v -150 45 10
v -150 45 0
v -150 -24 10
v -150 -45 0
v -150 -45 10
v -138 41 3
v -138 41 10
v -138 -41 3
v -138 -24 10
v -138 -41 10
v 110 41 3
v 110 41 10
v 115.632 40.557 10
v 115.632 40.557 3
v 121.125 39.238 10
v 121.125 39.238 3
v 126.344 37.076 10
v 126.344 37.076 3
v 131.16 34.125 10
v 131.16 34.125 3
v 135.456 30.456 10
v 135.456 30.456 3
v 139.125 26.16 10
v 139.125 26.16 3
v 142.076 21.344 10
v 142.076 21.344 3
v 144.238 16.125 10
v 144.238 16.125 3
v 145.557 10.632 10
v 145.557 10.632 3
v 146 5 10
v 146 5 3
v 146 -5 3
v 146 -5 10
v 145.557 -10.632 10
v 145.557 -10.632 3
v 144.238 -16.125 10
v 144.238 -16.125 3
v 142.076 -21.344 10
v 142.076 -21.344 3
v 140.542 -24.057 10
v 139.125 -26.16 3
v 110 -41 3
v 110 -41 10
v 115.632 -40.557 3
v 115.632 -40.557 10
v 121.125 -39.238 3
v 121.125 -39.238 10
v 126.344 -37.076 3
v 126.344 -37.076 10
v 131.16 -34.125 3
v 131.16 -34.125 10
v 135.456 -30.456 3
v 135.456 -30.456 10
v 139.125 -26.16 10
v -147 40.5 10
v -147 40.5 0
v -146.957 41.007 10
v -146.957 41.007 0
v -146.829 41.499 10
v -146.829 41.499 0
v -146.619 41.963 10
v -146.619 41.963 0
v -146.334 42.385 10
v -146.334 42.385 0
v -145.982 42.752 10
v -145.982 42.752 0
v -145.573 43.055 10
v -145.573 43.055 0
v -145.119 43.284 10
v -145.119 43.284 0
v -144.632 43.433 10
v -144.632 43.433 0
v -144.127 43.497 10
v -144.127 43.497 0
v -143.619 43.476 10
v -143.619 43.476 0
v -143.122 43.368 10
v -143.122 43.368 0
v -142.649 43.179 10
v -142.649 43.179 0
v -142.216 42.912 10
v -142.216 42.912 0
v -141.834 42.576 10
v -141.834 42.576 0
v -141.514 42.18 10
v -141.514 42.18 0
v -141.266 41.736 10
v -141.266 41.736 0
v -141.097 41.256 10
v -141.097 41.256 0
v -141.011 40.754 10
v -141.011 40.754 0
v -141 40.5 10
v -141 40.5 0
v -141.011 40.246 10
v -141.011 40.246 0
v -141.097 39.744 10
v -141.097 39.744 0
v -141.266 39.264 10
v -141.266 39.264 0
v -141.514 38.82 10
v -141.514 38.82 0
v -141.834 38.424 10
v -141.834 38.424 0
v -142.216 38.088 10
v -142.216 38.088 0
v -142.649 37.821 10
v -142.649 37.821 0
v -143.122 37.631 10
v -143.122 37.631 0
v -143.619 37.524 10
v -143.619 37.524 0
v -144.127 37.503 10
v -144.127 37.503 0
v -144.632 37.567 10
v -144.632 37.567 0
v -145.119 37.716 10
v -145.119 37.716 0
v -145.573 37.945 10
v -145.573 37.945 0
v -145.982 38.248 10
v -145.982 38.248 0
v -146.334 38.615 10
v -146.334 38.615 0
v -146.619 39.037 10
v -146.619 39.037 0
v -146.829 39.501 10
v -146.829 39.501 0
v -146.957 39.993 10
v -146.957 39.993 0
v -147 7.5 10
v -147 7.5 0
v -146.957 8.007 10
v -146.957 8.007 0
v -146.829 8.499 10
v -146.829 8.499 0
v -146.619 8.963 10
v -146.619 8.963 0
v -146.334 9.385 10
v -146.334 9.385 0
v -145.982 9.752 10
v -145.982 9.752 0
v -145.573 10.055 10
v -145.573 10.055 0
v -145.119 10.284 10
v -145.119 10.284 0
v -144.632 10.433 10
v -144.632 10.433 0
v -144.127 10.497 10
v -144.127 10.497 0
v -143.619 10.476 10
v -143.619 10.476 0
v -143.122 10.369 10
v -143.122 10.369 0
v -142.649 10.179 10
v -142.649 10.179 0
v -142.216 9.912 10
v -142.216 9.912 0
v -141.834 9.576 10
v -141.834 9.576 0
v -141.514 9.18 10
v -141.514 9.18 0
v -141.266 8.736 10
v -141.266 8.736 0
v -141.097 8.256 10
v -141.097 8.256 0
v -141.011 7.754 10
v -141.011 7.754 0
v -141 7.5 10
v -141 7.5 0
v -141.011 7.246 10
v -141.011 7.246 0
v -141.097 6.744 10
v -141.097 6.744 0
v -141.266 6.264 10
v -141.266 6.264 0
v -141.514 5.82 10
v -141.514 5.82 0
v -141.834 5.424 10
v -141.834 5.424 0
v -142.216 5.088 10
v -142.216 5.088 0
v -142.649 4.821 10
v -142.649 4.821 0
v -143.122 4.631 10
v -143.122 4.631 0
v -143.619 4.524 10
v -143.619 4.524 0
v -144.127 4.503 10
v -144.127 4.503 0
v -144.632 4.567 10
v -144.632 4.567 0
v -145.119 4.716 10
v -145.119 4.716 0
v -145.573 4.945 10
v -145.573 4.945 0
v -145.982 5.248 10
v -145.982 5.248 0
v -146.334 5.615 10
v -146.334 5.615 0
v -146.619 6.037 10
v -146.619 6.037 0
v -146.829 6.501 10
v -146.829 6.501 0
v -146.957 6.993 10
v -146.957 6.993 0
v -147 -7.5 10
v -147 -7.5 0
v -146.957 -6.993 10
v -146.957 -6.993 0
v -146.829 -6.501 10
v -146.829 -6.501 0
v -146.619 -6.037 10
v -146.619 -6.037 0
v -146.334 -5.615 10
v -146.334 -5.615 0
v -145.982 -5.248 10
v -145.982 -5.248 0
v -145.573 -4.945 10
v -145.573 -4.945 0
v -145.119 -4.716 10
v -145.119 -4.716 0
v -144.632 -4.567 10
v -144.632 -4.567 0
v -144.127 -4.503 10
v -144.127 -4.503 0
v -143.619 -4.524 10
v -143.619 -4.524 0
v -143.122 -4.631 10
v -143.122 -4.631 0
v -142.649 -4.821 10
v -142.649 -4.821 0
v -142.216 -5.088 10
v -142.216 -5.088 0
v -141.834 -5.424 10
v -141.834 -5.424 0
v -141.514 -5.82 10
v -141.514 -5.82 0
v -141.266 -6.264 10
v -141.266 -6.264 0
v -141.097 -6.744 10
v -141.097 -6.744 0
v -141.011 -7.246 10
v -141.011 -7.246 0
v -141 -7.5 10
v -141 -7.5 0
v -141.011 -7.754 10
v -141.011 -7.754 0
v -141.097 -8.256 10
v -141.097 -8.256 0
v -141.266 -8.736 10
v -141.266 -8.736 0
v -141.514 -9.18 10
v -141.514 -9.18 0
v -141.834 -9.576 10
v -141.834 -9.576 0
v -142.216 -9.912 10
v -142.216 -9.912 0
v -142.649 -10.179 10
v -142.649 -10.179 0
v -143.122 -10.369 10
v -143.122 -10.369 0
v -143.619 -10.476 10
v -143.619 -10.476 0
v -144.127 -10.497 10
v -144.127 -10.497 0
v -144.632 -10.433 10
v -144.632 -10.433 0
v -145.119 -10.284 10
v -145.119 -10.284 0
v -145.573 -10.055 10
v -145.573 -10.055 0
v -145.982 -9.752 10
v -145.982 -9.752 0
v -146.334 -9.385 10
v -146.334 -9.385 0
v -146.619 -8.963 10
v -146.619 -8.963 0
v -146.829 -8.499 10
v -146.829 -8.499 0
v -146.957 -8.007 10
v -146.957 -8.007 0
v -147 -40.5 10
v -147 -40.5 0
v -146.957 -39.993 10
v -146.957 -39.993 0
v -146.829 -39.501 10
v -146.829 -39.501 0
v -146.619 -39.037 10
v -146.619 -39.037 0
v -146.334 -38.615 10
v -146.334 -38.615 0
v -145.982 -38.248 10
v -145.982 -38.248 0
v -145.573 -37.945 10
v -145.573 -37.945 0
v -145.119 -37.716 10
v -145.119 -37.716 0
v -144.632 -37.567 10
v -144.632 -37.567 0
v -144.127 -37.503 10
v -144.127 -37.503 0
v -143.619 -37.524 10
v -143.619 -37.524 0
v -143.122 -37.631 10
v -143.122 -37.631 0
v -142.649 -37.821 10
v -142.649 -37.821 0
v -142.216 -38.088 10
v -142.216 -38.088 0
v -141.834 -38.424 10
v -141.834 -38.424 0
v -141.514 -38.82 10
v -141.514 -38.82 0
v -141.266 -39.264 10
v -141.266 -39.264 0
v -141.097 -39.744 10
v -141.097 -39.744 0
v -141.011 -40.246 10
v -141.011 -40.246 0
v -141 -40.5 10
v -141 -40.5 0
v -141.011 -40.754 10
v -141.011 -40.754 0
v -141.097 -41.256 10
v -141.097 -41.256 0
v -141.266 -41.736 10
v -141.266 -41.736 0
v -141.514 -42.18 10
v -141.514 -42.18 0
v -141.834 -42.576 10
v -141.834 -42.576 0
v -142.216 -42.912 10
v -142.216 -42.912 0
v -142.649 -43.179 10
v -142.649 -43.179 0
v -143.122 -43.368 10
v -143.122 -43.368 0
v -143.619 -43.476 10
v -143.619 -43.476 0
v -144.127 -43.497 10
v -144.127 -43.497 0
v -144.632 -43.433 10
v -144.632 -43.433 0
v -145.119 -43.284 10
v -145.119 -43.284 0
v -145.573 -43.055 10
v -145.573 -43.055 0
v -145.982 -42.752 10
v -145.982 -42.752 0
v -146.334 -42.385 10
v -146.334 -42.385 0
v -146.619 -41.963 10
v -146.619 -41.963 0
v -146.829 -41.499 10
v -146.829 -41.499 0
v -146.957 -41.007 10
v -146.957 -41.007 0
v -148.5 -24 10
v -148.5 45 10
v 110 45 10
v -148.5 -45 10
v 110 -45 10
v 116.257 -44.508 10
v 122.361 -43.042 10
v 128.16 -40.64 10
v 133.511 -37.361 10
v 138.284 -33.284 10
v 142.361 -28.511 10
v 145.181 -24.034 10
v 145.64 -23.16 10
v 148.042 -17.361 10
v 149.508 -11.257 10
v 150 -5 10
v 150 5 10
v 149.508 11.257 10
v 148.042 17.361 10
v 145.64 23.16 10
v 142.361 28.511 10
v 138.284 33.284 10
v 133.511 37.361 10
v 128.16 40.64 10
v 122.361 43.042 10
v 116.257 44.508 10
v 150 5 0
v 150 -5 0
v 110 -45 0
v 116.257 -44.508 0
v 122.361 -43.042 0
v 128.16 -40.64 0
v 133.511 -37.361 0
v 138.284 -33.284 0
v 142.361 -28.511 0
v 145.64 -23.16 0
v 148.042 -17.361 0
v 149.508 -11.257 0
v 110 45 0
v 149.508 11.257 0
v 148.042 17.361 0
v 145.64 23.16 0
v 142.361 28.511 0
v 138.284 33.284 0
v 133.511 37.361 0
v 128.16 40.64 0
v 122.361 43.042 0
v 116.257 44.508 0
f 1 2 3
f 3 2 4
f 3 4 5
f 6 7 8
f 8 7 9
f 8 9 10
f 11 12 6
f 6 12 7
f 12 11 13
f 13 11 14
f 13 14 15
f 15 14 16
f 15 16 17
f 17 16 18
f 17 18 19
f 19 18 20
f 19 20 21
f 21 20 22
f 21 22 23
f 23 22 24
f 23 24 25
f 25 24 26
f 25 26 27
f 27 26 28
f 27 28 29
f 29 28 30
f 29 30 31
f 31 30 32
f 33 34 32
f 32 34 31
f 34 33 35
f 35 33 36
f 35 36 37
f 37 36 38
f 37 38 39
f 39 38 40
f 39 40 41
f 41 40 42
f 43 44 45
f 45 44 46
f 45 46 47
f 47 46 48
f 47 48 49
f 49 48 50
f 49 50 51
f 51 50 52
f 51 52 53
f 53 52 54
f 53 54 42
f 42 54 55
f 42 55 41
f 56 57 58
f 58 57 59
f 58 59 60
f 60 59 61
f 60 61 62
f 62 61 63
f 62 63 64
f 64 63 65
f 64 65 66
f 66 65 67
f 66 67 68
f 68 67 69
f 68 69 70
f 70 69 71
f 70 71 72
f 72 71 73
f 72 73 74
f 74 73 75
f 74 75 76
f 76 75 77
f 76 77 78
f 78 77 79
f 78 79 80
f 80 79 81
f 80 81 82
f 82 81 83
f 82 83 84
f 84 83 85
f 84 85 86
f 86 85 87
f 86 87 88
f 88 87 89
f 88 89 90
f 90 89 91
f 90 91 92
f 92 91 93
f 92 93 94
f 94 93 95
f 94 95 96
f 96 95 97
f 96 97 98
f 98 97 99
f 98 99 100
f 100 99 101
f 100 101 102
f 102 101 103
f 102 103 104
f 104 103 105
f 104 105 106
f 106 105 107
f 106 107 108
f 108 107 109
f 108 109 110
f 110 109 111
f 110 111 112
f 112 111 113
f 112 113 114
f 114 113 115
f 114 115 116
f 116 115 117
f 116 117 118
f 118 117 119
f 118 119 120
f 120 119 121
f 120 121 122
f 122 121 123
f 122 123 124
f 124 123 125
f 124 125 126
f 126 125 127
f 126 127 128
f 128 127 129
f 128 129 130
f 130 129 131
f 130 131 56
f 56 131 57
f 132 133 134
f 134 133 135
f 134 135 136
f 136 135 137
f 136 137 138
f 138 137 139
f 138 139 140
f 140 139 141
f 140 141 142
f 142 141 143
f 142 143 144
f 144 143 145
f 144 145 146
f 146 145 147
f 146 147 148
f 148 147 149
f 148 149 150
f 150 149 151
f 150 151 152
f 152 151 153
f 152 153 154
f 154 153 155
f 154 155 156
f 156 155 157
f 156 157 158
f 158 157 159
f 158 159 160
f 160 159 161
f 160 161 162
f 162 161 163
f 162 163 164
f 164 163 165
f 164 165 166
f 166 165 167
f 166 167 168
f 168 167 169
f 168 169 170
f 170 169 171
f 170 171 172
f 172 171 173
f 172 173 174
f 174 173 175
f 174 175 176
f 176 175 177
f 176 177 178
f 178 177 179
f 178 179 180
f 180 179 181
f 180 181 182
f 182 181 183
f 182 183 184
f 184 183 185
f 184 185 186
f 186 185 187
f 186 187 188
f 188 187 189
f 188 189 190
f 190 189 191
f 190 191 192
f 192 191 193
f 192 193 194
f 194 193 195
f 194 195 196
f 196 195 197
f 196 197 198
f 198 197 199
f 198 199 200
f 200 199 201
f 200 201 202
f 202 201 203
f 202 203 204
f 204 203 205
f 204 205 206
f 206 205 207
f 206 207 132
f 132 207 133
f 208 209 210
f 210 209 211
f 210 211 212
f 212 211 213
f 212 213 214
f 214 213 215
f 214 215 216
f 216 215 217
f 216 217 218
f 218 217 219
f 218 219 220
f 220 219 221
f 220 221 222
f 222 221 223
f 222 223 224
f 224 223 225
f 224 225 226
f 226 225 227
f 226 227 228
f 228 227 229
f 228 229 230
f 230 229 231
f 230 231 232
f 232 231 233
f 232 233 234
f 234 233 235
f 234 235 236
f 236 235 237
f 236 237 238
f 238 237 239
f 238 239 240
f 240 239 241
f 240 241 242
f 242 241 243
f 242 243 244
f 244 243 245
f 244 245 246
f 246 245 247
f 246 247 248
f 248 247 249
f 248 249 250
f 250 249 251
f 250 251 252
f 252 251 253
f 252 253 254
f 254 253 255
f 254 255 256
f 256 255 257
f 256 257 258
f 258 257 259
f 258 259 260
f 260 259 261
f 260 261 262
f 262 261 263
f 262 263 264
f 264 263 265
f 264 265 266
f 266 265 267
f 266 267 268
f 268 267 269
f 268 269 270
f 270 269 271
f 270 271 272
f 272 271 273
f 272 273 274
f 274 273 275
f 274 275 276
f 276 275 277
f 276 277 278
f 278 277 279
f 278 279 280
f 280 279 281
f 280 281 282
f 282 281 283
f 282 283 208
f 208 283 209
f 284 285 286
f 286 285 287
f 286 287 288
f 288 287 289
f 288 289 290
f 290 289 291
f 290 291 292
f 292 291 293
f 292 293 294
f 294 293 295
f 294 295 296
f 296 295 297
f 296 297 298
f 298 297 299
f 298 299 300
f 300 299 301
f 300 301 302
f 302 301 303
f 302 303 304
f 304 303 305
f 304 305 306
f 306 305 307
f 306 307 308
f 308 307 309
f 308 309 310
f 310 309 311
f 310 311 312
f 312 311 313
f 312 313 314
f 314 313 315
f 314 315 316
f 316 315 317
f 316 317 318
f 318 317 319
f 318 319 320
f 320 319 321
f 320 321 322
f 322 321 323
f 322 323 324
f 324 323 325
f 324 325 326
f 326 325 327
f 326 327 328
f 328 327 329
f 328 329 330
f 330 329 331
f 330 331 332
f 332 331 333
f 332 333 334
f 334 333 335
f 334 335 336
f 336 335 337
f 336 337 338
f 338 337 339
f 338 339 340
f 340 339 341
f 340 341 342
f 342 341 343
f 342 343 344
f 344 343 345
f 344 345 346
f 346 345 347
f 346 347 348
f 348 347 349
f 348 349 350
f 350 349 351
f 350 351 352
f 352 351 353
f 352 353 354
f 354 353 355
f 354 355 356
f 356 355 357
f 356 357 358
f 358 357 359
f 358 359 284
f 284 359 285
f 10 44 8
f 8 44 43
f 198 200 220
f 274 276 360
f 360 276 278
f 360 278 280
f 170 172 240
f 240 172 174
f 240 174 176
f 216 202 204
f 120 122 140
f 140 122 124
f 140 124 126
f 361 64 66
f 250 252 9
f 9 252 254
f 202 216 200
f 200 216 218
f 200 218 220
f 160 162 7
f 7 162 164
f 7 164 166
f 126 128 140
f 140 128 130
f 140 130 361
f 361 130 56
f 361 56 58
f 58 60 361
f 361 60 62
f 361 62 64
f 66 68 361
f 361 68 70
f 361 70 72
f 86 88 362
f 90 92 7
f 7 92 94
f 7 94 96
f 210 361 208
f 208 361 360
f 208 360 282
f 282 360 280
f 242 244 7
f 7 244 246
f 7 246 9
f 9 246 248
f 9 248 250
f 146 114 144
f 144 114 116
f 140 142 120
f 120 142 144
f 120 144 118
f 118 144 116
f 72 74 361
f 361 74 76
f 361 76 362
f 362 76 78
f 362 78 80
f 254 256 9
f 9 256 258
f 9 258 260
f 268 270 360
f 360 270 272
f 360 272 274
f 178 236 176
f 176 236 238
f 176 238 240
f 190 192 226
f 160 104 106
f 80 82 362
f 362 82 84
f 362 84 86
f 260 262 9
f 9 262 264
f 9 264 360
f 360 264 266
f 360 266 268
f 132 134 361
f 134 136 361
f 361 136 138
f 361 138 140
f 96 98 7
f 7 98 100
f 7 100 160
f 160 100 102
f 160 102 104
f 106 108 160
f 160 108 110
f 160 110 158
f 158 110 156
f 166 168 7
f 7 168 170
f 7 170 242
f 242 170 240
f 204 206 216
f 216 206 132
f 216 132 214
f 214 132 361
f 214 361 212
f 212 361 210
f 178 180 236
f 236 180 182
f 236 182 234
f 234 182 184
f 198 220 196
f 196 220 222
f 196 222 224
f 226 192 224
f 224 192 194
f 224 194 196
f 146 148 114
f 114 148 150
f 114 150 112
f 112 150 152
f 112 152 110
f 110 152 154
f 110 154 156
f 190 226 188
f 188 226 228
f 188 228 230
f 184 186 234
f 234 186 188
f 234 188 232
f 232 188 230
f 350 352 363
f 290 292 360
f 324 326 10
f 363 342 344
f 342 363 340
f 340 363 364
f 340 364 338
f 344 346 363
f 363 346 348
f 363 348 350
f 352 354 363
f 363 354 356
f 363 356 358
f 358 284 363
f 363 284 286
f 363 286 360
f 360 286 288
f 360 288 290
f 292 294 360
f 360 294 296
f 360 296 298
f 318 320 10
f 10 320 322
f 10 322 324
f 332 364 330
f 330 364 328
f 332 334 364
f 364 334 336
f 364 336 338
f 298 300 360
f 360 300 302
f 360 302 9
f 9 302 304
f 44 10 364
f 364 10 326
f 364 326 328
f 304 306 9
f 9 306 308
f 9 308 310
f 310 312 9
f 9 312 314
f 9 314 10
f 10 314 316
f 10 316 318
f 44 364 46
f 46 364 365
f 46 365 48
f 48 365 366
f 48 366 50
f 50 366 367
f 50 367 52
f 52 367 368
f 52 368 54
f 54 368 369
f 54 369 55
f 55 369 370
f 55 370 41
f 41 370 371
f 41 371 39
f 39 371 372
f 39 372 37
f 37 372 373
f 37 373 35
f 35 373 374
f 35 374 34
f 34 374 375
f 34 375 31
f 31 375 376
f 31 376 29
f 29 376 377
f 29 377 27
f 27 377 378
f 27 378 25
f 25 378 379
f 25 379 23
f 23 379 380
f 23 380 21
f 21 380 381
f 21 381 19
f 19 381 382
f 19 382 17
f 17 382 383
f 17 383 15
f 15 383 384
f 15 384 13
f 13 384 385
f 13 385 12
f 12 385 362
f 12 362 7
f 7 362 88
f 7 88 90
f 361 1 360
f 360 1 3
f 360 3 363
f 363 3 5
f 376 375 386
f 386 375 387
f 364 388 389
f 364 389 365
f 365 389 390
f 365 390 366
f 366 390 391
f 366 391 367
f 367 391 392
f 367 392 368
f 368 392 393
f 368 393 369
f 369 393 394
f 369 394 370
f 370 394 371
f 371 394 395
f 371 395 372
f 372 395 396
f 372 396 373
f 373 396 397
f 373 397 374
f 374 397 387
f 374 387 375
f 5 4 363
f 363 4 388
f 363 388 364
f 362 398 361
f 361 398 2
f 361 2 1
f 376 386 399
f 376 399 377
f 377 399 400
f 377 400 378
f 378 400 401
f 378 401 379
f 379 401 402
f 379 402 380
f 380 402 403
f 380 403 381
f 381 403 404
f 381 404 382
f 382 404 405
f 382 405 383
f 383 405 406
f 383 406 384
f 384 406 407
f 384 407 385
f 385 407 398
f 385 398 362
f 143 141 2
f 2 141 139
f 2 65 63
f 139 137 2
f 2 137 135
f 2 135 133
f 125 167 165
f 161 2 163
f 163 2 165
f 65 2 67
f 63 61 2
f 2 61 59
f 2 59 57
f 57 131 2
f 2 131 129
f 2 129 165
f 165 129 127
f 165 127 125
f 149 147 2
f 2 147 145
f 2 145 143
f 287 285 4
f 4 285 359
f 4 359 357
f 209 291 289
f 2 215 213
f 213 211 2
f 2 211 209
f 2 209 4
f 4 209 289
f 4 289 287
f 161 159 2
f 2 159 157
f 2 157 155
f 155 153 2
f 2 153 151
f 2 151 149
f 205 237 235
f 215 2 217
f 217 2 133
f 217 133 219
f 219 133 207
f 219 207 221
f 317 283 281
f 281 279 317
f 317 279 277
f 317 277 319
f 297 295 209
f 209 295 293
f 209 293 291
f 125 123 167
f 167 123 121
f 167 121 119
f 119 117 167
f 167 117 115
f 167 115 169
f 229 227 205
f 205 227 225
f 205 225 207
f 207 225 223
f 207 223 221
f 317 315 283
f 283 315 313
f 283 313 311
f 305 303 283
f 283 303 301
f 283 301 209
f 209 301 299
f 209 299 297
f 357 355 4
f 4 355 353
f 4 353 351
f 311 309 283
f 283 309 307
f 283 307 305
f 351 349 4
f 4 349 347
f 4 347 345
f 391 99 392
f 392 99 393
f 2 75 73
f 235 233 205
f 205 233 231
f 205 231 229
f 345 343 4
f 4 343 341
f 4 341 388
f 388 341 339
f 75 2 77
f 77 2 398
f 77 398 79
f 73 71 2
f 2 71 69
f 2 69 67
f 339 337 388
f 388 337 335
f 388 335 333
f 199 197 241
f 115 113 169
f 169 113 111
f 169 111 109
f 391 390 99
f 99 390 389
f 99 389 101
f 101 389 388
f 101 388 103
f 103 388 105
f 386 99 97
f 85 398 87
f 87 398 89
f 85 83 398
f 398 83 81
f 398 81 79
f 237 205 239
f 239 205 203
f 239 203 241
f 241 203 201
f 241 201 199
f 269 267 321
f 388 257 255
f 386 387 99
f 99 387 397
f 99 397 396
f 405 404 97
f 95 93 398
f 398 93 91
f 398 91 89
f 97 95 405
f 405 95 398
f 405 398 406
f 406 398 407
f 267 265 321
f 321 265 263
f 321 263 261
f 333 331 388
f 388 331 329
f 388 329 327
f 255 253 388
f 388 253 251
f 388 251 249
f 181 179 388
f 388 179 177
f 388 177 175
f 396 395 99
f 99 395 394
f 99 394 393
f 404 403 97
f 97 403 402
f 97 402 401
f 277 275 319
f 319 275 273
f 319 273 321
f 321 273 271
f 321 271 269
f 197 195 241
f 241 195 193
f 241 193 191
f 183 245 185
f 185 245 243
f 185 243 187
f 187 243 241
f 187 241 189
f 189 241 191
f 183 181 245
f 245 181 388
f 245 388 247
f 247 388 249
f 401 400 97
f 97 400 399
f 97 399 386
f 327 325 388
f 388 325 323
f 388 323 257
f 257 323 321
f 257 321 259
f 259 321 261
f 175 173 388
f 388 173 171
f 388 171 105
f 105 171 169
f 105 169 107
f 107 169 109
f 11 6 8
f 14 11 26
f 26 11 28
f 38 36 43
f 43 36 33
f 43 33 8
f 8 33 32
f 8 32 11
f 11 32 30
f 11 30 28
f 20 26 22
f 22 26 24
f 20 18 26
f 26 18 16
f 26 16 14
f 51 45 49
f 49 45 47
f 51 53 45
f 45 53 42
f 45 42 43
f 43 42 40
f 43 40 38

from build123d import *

# Parameters (mm, degrees)
BOSS_EXTRUDE1_DEPTH = 3
SKETCH1_3_R         = 3
BOSS_EXTRUDE2_DEPTH = 10


with BuildPart() as part:
    # Sketch1 → Boss-Extrude1 (new body)
    with BuildSketch(Plane.XY):
        with BuildLine():
            Line((-138, -45), (110, -45))
            ThreePointArc((110, -45), (138.284271247, -33.284271247), (150, -5))
            Line((150, -5), (150, 5))
            ThreePointArc((150, 5), (138.284271247, 33.284271247), (110, 45))
            Line((110, 45), (-138, 45))
            Line((-138, 45), (-138, -45))
        make_face()
    extrude(amount=BOSS_EXTRUDE1_DEPTH)

    # Sketch1<3> → Boss-Extrude2 (add)
    with BuildSketch(Plane.XY):
        with BuildLine():
            ThreePointArc((110, -45), (138.284271247, -33.284271247), (150, -5))
            Line((150, -5), (150, 5))
            ThreePointArc((150, 5), (138.284271247, 33.284271247), (110, 45))
            Line((110, 45), (-150, 45))
            Line((-150, 45), (-150, -45))
            Line((-150, -45), (110, -45))
        make_face()
        with BuildLine():
            Line((110, -41), (-138, -41))
            Line((-138, -41), (-138, 41))
            Line((-138, 41), (110, 41))
            ThreePointArc((110, 41), (135.455844123, 30.455844123), (146, 5))
            Line((146, 5), (146, -5))
            ThreePointArc((146, -5), (135.455844123, -30.455844123), (110, -41))
        make_face(mode=Mode.SUBTRACT)
        with Locations((-144, 7.5)):
            Circle(SKETCH1_3_R, mode=Mode.SUBTRACT)
        with Locations((-144, 40.5)):
            Circle(SKETCH1_3_R, mode=Mode.SUBTRACT)
        with Locations((-144, -40.5)):
            Circle(SKETCH1_3_R, mode=Mode.SUBTRACT)
        with Locations((-144, -7.5)):
            Circle(SKETCH1_3_R, mode=Mode.SUBTRACT)
    extrude(amount=BOSS_EXTRUDE2_DEPTH)


solid = part.part
